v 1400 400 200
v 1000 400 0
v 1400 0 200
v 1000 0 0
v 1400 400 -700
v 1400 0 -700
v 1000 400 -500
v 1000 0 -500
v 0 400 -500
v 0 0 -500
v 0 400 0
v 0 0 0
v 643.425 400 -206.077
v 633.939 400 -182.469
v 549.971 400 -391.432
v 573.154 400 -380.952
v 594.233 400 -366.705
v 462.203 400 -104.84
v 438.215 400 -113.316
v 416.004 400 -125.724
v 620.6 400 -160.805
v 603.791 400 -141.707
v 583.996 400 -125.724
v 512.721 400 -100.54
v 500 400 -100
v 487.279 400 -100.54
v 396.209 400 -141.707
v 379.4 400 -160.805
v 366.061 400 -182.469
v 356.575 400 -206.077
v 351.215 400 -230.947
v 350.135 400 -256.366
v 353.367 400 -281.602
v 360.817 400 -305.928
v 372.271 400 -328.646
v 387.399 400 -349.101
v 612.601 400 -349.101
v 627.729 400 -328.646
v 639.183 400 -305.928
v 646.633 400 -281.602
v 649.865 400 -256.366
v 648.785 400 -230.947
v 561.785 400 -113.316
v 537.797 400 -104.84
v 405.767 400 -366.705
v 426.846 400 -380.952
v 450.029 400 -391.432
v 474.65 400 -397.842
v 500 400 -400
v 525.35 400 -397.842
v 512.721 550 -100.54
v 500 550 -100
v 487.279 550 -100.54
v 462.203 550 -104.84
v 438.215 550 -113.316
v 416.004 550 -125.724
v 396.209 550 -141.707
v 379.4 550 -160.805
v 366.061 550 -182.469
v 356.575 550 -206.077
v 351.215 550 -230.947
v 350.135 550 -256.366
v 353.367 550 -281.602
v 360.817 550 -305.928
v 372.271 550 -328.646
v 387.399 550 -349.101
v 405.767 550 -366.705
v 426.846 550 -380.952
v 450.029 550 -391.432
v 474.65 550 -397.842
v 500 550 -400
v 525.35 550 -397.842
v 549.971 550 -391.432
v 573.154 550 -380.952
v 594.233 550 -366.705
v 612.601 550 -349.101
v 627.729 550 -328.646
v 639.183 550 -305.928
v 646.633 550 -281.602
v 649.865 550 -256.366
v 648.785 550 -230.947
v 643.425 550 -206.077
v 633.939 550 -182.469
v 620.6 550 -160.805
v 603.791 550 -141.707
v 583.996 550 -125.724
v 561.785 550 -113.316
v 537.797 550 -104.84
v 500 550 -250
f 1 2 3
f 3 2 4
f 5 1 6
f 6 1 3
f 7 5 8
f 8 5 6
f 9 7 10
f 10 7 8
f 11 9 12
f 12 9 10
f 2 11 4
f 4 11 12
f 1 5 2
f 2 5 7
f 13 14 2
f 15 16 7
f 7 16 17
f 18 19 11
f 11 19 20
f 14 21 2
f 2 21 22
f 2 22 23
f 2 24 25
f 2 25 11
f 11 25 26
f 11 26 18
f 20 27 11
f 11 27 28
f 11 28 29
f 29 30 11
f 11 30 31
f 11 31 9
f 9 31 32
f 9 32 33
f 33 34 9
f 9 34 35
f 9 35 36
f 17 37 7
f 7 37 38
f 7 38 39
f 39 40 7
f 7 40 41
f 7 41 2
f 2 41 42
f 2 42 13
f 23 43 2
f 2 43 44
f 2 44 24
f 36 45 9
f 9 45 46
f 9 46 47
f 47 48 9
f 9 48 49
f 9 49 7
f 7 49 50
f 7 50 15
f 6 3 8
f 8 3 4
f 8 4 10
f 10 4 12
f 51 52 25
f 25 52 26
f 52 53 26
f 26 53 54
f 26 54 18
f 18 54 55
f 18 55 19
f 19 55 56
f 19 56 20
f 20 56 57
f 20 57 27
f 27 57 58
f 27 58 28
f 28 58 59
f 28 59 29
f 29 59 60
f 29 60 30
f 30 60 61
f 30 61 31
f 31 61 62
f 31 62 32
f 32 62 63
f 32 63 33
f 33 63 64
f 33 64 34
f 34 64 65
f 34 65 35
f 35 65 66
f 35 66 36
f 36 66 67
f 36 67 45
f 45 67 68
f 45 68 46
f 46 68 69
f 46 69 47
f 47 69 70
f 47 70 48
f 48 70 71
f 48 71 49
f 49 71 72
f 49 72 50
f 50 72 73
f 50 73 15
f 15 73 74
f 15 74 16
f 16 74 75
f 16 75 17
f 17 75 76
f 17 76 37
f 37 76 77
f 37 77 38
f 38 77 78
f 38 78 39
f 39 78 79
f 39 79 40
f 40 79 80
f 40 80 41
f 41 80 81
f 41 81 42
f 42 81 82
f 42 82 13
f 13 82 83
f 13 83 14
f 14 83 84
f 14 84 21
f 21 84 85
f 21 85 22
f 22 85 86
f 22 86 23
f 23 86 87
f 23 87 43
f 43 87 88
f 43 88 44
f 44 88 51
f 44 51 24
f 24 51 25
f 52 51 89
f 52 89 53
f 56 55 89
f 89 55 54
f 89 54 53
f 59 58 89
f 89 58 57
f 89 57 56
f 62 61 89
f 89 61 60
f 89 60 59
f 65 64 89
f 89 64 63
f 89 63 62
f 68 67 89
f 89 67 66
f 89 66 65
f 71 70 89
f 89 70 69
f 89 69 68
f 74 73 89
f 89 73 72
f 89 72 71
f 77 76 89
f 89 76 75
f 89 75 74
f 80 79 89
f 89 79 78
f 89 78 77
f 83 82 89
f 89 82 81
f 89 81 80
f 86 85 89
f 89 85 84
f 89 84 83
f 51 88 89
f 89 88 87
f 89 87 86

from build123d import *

# Parameters (mm, degrees)
SKETCH1_W           = 1000
SKETCH1_H           = 500
BOSS_EXTRUDE1_DEPTH = 400
SKETCH2_R           = 150
BOSS_EXTRUDE2_DEPTH = 150


with BuildPart() as part:
    # Sketch1 → Boss-Extrude1 (new body)
    with BuildSketch(Plane(origin=(0, 0, 0), x_dir=(1, 0, 0), z_dir=(0, 1, 0))):
        Polygon((1400, -200), (1000, 0), (1000, 500), (1400, 700), align=None)
        with Locations((500, 250)):
            Rectangle(SKETCH1_W, SKETCH1_H)
    extrude(amount=BOSS_EXTRUDE1_DEPTH)

    # Sketch2 → Boss-Extrude2 (add)
    with BuildSketch(Plane(origin=(0, 400, 0), x_dir=(1, 0, 0), z_dir=(0, 1, 0))):
        with Locations(Location((500, 250, 0), (0, 0, 270))):
            Circle(SKETCH2_R)
    extrude(amount=BOSS_EXTRUDE2_DEPTH)


solid = part.part
